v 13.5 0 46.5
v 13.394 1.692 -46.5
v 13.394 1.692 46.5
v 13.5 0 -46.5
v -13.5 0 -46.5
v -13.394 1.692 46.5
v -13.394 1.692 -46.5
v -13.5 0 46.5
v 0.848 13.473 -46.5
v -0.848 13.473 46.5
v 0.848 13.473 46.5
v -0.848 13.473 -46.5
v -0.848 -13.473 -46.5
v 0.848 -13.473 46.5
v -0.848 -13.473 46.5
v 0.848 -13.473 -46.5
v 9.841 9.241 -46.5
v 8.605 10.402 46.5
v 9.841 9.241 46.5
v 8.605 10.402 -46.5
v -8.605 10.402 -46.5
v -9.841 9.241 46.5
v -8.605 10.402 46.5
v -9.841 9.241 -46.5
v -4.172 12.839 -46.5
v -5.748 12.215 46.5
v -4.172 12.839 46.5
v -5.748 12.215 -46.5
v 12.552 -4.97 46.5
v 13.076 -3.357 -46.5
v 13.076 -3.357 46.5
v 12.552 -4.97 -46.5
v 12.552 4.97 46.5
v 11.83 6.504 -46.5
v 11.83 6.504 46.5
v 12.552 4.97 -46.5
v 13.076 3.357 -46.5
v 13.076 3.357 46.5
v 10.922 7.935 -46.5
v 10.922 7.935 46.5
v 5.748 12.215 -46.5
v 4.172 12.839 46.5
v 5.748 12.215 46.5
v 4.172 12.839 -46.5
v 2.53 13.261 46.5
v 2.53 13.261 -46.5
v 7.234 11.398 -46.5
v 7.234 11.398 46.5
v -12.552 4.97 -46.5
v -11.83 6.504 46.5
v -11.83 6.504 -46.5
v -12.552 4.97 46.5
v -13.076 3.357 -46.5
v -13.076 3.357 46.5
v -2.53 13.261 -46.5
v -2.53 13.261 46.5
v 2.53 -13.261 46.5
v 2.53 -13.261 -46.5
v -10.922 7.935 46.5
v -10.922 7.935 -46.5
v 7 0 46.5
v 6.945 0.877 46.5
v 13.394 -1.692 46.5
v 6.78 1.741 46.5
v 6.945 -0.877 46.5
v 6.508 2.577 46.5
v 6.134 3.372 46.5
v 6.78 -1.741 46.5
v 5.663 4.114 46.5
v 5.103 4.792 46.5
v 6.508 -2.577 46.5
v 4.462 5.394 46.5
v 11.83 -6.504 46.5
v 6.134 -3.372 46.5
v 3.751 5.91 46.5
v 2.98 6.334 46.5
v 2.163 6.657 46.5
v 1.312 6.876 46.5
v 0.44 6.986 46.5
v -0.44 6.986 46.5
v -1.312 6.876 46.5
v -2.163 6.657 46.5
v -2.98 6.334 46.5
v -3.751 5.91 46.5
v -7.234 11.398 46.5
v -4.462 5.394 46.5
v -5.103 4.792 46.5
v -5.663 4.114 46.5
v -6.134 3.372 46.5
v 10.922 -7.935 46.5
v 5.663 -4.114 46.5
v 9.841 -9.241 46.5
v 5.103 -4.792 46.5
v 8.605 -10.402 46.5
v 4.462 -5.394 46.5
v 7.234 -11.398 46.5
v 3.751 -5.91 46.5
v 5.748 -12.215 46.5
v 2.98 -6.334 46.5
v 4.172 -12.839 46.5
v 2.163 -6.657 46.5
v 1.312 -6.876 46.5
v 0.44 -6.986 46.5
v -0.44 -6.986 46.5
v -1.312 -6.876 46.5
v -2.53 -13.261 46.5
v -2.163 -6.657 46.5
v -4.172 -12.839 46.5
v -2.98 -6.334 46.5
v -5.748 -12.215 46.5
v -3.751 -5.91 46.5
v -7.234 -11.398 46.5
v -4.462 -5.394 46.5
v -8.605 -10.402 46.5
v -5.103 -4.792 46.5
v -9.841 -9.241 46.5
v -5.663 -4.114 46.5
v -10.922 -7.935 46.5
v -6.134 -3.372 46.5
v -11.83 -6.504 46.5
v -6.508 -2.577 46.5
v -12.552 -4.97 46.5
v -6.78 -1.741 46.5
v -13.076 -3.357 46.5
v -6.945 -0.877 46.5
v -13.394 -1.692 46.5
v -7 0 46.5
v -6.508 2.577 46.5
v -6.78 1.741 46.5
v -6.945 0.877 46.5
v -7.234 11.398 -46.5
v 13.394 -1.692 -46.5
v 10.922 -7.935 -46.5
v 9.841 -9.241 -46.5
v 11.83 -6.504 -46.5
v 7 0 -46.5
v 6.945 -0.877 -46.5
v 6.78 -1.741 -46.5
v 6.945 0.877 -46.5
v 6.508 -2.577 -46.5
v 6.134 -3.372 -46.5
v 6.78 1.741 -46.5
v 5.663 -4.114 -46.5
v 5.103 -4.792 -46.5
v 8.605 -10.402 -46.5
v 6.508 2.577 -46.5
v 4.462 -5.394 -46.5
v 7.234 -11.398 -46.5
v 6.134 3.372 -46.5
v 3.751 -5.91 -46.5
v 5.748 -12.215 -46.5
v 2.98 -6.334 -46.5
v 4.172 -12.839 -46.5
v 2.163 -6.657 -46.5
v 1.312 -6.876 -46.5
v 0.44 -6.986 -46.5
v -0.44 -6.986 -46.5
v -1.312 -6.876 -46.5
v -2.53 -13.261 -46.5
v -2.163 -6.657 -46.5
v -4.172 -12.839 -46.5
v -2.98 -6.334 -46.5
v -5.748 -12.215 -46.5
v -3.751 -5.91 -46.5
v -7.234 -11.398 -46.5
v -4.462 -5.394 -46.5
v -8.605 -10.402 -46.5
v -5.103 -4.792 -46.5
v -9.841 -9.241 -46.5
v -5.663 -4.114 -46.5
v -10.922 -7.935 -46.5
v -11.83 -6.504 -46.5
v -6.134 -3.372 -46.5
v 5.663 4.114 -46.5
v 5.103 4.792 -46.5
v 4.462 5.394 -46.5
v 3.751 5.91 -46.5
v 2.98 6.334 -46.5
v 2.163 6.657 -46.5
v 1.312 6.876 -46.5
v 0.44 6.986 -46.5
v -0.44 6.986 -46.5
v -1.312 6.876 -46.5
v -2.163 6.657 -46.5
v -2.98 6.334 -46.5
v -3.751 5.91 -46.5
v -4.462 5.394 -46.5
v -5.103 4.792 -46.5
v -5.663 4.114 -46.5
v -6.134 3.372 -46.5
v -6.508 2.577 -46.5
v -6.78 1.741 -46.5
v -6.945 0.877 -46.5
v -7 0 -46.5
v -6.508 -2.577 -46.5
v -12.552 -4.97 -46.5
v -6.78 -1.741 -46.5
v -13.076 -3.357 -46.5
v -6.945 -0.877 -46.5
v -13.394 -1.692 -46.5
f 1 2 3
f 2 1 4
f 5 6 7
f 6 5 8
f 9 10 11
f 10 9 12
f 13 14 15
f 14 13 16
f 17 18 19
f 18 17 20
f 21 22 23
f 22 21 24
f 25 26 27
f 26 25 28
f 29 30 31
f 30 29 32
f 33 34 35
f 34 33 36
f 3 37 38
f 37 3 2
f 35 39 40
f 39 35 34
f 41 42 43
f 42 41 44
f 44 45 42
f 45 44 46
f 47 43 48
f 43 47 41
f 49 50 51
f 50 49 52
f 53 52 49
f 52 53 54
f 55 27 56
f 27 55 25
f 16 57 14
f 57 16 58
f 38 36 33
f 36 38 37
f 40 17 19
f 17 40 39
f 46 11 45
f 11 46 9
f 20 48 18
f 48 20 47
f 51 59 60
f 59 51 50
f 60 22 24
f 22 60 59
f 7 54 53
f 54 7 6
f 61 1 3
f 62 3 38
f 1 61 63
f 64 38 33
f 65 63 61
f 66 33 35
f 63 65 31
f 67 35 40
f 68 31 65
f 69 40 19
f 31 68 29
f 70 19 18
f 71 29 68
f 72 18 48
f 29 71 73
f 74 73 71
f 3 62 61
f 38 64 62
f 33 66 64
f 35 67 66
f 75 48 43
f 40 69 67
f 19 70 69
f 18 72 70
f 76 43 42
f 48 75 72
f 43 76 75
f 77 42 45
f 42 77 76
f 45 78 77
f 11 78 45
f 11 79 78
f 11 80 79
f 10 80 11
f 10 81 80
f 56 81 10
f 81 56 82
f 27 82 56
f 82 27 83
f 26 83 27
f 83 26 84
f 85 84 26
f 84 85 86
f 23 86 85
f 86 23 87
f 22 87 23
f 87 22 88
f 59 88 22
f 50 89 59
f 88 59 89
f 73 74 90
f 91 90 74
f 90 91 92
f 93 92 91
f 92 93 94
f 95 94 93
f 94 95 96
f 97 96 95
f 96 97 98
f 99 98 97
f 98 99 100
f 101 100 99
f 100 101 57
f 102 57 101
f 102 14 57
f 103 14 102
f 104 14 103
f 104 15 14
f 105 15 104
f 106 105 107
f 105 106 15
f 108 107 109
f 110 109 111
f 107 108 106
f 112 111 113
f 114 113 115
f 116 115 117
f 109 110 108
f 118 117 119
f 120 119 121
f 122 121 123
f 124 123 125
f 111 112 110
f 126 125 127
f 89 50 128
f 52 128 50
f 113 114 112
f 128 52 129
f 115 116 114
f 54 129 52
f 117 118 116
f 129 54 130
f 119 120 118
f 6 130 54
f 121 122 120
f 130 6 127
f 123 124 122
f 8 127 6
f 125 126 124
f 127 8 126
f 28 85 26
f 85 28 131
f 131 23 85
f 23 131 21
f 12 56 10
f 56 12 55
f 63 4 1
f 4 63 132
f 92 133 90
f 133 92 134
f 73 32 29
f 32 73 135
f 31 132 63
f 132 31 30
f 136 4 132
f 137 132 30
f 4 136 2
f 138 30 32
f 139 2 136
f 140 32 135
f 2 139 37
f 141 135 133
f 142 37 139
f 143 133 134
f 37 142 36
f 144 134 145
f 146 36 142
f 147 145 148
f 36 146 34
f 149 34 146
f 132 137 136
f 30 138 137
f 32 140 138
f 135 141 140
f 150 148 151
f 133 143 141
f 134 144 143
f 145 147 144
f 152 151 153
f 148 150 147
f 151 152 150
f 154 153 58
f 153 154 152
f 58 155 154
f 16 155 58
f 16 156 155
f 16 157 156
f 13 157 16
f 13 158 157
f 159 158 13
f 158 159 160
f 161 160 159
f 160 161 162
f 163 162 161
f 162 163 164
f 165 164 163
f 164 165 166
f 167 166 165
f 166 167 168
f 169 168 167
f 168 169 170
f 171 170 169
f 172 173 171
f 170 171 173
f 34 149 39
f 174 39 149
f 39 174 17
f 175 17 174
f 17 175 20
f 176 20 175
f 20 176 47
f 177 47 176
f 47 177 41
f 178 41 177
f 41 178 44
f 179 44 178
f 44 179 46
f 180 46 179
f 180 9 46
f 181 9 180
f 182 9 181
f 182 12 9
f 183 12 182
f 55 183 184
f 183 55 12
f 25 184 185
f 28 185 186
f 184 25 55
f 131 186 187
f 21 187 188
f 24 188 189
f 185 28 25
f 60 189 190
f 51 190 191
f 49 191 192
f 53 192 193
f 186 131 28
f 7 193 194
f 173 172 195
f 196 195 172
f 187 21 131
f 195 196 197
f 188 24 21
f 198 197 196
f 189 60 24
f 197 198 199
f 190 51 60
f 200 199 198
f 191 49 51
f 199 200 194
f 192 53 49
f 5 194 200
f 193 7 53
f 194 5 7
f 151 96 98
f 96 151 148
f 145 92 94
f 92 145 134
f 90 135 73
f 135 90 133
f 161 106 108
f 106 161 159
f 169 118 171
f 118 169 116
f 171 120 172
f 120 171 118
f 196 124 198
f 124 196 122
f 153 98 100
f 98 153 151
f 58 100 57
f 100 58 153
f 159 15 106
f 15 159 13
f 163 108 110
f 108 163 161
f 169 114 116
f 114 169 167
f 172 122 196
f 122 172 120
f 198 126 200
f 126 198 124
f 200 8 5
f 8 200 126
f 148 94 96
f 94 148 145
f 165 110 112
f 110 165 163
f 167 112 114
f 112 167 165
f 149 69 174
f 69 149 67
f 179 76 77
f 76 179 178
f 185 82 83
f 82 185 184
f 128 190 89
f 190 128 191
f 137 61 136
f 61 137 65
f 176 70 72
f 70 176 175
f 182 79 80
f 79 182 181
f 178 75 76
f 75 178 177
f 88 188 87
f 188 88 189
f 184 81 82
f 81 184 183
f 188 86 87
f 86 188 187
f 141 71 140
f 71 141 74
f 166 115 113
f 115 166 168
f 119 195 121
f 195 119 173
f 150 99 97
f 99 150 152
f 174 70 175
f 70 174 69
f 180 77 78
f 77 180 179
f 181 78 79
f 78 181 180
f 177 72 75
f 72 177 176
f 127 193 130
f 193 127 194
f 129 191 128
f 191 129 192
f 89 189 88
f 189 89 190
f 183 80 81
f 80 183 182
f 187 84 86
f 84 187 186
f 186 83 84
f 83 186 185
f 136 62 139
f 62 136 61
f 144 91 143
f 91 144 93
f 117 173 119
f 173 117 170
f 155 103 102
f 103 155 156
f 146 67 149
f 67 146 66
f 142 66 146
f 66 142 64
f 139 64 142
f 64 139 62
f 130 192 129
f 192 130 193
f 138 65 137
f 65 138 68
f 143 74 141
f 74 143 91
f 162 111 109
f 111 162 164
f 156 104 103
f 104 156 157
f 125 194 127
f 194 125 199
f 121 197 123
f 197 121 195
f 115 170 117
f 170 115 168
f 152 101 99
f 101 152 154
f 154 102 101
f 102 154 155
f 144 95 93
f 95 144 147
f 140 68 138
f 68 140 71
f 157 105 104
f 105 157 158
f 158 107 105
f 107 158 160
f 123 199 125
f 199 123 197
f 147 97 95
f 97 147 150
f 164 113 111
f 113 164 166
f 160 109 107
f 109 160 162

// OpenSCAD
$fn = 50;


difference() {
	union() {
		translate(v = [0, 0, -46.5000000000]) {
			cylinder(h = 93, r = 13.5000000000);
		}
	}
	union() {
		translate(v = [0, 0, -100.0000000000]) {
			cylinder(h = 200, r = 7);
		}
	}
}
